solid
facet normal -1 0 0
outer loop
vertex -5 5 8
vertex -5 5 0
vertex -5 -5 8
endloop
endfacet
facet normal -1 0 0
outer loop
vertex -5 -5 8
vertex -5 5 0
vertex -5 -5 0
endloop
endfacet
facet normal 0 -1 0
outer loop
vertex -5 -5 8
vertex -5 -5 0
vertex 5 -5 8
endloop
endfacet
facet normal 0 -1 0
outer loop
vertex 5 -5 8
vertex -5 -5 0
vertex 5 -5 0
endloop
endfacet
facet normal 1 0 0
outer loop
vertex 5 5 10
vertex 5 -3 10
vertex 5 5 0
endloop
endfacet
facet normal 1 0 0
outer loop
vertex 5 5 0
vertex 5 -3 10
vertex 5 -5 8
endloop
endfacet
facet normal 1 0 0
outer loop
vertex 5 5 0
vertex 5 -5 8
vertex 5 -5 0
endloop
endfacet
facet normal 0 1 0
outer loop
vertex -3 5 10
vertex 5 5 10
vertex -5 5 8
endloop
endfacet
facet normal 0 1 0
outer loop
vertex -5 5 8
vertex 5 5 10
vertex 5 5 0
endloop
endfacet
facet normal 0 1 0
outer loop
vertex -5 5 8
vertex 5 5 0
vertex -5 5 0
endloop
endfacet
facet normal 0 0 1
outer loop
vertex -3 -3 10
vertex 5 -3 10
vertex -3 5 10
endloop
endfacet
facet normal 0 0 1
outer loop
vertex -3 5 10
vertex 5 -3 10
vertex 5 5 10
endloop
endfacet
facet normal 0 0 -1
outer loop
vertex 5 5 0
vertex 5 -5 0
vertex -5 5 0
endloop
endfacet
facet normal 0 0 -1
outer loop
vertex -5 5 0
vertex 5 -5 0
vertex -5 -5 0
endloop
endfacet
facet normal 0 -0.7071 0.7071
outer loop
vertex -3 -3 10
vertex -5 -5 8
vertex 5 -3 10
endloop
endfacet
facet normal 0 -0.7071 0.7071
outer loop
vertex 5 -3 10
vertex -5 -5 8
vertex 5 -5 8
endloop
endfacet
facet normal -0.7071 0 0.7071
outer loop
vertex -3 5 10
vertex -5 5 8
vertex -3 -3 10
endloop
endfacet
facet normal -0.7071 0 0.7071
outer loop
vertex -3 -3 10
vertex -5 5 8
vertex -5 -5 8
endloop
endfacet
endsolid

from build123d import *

# Parameters (mm, degrees)
SKETCH1_W           = 10
SKETCH1_H           = 10
BOSS_EXTRUDE1_DEPTH = 10
CHAMFER1_SIZE       = 2


with BuildPart() as part:
    # Sketch1 → Boss-Extrude1 (new body)
    with BuildSketch(Plane.XY):
        Rectangle(SKETCH1_W, SKETCH1_H)
    extrude(amount=BOSS_EXTRUDE1_DEPTH)

    # Chamfer1
    chamfer1_edges = [part.edges().sort_by_distance(p)[0] for p in [
        (0, -5, 10),
        (-5, 0, 10),
    ]]
    chamfer(chamfer1_edges, length=CHAMFER1_SIZE)


solid = part.part
